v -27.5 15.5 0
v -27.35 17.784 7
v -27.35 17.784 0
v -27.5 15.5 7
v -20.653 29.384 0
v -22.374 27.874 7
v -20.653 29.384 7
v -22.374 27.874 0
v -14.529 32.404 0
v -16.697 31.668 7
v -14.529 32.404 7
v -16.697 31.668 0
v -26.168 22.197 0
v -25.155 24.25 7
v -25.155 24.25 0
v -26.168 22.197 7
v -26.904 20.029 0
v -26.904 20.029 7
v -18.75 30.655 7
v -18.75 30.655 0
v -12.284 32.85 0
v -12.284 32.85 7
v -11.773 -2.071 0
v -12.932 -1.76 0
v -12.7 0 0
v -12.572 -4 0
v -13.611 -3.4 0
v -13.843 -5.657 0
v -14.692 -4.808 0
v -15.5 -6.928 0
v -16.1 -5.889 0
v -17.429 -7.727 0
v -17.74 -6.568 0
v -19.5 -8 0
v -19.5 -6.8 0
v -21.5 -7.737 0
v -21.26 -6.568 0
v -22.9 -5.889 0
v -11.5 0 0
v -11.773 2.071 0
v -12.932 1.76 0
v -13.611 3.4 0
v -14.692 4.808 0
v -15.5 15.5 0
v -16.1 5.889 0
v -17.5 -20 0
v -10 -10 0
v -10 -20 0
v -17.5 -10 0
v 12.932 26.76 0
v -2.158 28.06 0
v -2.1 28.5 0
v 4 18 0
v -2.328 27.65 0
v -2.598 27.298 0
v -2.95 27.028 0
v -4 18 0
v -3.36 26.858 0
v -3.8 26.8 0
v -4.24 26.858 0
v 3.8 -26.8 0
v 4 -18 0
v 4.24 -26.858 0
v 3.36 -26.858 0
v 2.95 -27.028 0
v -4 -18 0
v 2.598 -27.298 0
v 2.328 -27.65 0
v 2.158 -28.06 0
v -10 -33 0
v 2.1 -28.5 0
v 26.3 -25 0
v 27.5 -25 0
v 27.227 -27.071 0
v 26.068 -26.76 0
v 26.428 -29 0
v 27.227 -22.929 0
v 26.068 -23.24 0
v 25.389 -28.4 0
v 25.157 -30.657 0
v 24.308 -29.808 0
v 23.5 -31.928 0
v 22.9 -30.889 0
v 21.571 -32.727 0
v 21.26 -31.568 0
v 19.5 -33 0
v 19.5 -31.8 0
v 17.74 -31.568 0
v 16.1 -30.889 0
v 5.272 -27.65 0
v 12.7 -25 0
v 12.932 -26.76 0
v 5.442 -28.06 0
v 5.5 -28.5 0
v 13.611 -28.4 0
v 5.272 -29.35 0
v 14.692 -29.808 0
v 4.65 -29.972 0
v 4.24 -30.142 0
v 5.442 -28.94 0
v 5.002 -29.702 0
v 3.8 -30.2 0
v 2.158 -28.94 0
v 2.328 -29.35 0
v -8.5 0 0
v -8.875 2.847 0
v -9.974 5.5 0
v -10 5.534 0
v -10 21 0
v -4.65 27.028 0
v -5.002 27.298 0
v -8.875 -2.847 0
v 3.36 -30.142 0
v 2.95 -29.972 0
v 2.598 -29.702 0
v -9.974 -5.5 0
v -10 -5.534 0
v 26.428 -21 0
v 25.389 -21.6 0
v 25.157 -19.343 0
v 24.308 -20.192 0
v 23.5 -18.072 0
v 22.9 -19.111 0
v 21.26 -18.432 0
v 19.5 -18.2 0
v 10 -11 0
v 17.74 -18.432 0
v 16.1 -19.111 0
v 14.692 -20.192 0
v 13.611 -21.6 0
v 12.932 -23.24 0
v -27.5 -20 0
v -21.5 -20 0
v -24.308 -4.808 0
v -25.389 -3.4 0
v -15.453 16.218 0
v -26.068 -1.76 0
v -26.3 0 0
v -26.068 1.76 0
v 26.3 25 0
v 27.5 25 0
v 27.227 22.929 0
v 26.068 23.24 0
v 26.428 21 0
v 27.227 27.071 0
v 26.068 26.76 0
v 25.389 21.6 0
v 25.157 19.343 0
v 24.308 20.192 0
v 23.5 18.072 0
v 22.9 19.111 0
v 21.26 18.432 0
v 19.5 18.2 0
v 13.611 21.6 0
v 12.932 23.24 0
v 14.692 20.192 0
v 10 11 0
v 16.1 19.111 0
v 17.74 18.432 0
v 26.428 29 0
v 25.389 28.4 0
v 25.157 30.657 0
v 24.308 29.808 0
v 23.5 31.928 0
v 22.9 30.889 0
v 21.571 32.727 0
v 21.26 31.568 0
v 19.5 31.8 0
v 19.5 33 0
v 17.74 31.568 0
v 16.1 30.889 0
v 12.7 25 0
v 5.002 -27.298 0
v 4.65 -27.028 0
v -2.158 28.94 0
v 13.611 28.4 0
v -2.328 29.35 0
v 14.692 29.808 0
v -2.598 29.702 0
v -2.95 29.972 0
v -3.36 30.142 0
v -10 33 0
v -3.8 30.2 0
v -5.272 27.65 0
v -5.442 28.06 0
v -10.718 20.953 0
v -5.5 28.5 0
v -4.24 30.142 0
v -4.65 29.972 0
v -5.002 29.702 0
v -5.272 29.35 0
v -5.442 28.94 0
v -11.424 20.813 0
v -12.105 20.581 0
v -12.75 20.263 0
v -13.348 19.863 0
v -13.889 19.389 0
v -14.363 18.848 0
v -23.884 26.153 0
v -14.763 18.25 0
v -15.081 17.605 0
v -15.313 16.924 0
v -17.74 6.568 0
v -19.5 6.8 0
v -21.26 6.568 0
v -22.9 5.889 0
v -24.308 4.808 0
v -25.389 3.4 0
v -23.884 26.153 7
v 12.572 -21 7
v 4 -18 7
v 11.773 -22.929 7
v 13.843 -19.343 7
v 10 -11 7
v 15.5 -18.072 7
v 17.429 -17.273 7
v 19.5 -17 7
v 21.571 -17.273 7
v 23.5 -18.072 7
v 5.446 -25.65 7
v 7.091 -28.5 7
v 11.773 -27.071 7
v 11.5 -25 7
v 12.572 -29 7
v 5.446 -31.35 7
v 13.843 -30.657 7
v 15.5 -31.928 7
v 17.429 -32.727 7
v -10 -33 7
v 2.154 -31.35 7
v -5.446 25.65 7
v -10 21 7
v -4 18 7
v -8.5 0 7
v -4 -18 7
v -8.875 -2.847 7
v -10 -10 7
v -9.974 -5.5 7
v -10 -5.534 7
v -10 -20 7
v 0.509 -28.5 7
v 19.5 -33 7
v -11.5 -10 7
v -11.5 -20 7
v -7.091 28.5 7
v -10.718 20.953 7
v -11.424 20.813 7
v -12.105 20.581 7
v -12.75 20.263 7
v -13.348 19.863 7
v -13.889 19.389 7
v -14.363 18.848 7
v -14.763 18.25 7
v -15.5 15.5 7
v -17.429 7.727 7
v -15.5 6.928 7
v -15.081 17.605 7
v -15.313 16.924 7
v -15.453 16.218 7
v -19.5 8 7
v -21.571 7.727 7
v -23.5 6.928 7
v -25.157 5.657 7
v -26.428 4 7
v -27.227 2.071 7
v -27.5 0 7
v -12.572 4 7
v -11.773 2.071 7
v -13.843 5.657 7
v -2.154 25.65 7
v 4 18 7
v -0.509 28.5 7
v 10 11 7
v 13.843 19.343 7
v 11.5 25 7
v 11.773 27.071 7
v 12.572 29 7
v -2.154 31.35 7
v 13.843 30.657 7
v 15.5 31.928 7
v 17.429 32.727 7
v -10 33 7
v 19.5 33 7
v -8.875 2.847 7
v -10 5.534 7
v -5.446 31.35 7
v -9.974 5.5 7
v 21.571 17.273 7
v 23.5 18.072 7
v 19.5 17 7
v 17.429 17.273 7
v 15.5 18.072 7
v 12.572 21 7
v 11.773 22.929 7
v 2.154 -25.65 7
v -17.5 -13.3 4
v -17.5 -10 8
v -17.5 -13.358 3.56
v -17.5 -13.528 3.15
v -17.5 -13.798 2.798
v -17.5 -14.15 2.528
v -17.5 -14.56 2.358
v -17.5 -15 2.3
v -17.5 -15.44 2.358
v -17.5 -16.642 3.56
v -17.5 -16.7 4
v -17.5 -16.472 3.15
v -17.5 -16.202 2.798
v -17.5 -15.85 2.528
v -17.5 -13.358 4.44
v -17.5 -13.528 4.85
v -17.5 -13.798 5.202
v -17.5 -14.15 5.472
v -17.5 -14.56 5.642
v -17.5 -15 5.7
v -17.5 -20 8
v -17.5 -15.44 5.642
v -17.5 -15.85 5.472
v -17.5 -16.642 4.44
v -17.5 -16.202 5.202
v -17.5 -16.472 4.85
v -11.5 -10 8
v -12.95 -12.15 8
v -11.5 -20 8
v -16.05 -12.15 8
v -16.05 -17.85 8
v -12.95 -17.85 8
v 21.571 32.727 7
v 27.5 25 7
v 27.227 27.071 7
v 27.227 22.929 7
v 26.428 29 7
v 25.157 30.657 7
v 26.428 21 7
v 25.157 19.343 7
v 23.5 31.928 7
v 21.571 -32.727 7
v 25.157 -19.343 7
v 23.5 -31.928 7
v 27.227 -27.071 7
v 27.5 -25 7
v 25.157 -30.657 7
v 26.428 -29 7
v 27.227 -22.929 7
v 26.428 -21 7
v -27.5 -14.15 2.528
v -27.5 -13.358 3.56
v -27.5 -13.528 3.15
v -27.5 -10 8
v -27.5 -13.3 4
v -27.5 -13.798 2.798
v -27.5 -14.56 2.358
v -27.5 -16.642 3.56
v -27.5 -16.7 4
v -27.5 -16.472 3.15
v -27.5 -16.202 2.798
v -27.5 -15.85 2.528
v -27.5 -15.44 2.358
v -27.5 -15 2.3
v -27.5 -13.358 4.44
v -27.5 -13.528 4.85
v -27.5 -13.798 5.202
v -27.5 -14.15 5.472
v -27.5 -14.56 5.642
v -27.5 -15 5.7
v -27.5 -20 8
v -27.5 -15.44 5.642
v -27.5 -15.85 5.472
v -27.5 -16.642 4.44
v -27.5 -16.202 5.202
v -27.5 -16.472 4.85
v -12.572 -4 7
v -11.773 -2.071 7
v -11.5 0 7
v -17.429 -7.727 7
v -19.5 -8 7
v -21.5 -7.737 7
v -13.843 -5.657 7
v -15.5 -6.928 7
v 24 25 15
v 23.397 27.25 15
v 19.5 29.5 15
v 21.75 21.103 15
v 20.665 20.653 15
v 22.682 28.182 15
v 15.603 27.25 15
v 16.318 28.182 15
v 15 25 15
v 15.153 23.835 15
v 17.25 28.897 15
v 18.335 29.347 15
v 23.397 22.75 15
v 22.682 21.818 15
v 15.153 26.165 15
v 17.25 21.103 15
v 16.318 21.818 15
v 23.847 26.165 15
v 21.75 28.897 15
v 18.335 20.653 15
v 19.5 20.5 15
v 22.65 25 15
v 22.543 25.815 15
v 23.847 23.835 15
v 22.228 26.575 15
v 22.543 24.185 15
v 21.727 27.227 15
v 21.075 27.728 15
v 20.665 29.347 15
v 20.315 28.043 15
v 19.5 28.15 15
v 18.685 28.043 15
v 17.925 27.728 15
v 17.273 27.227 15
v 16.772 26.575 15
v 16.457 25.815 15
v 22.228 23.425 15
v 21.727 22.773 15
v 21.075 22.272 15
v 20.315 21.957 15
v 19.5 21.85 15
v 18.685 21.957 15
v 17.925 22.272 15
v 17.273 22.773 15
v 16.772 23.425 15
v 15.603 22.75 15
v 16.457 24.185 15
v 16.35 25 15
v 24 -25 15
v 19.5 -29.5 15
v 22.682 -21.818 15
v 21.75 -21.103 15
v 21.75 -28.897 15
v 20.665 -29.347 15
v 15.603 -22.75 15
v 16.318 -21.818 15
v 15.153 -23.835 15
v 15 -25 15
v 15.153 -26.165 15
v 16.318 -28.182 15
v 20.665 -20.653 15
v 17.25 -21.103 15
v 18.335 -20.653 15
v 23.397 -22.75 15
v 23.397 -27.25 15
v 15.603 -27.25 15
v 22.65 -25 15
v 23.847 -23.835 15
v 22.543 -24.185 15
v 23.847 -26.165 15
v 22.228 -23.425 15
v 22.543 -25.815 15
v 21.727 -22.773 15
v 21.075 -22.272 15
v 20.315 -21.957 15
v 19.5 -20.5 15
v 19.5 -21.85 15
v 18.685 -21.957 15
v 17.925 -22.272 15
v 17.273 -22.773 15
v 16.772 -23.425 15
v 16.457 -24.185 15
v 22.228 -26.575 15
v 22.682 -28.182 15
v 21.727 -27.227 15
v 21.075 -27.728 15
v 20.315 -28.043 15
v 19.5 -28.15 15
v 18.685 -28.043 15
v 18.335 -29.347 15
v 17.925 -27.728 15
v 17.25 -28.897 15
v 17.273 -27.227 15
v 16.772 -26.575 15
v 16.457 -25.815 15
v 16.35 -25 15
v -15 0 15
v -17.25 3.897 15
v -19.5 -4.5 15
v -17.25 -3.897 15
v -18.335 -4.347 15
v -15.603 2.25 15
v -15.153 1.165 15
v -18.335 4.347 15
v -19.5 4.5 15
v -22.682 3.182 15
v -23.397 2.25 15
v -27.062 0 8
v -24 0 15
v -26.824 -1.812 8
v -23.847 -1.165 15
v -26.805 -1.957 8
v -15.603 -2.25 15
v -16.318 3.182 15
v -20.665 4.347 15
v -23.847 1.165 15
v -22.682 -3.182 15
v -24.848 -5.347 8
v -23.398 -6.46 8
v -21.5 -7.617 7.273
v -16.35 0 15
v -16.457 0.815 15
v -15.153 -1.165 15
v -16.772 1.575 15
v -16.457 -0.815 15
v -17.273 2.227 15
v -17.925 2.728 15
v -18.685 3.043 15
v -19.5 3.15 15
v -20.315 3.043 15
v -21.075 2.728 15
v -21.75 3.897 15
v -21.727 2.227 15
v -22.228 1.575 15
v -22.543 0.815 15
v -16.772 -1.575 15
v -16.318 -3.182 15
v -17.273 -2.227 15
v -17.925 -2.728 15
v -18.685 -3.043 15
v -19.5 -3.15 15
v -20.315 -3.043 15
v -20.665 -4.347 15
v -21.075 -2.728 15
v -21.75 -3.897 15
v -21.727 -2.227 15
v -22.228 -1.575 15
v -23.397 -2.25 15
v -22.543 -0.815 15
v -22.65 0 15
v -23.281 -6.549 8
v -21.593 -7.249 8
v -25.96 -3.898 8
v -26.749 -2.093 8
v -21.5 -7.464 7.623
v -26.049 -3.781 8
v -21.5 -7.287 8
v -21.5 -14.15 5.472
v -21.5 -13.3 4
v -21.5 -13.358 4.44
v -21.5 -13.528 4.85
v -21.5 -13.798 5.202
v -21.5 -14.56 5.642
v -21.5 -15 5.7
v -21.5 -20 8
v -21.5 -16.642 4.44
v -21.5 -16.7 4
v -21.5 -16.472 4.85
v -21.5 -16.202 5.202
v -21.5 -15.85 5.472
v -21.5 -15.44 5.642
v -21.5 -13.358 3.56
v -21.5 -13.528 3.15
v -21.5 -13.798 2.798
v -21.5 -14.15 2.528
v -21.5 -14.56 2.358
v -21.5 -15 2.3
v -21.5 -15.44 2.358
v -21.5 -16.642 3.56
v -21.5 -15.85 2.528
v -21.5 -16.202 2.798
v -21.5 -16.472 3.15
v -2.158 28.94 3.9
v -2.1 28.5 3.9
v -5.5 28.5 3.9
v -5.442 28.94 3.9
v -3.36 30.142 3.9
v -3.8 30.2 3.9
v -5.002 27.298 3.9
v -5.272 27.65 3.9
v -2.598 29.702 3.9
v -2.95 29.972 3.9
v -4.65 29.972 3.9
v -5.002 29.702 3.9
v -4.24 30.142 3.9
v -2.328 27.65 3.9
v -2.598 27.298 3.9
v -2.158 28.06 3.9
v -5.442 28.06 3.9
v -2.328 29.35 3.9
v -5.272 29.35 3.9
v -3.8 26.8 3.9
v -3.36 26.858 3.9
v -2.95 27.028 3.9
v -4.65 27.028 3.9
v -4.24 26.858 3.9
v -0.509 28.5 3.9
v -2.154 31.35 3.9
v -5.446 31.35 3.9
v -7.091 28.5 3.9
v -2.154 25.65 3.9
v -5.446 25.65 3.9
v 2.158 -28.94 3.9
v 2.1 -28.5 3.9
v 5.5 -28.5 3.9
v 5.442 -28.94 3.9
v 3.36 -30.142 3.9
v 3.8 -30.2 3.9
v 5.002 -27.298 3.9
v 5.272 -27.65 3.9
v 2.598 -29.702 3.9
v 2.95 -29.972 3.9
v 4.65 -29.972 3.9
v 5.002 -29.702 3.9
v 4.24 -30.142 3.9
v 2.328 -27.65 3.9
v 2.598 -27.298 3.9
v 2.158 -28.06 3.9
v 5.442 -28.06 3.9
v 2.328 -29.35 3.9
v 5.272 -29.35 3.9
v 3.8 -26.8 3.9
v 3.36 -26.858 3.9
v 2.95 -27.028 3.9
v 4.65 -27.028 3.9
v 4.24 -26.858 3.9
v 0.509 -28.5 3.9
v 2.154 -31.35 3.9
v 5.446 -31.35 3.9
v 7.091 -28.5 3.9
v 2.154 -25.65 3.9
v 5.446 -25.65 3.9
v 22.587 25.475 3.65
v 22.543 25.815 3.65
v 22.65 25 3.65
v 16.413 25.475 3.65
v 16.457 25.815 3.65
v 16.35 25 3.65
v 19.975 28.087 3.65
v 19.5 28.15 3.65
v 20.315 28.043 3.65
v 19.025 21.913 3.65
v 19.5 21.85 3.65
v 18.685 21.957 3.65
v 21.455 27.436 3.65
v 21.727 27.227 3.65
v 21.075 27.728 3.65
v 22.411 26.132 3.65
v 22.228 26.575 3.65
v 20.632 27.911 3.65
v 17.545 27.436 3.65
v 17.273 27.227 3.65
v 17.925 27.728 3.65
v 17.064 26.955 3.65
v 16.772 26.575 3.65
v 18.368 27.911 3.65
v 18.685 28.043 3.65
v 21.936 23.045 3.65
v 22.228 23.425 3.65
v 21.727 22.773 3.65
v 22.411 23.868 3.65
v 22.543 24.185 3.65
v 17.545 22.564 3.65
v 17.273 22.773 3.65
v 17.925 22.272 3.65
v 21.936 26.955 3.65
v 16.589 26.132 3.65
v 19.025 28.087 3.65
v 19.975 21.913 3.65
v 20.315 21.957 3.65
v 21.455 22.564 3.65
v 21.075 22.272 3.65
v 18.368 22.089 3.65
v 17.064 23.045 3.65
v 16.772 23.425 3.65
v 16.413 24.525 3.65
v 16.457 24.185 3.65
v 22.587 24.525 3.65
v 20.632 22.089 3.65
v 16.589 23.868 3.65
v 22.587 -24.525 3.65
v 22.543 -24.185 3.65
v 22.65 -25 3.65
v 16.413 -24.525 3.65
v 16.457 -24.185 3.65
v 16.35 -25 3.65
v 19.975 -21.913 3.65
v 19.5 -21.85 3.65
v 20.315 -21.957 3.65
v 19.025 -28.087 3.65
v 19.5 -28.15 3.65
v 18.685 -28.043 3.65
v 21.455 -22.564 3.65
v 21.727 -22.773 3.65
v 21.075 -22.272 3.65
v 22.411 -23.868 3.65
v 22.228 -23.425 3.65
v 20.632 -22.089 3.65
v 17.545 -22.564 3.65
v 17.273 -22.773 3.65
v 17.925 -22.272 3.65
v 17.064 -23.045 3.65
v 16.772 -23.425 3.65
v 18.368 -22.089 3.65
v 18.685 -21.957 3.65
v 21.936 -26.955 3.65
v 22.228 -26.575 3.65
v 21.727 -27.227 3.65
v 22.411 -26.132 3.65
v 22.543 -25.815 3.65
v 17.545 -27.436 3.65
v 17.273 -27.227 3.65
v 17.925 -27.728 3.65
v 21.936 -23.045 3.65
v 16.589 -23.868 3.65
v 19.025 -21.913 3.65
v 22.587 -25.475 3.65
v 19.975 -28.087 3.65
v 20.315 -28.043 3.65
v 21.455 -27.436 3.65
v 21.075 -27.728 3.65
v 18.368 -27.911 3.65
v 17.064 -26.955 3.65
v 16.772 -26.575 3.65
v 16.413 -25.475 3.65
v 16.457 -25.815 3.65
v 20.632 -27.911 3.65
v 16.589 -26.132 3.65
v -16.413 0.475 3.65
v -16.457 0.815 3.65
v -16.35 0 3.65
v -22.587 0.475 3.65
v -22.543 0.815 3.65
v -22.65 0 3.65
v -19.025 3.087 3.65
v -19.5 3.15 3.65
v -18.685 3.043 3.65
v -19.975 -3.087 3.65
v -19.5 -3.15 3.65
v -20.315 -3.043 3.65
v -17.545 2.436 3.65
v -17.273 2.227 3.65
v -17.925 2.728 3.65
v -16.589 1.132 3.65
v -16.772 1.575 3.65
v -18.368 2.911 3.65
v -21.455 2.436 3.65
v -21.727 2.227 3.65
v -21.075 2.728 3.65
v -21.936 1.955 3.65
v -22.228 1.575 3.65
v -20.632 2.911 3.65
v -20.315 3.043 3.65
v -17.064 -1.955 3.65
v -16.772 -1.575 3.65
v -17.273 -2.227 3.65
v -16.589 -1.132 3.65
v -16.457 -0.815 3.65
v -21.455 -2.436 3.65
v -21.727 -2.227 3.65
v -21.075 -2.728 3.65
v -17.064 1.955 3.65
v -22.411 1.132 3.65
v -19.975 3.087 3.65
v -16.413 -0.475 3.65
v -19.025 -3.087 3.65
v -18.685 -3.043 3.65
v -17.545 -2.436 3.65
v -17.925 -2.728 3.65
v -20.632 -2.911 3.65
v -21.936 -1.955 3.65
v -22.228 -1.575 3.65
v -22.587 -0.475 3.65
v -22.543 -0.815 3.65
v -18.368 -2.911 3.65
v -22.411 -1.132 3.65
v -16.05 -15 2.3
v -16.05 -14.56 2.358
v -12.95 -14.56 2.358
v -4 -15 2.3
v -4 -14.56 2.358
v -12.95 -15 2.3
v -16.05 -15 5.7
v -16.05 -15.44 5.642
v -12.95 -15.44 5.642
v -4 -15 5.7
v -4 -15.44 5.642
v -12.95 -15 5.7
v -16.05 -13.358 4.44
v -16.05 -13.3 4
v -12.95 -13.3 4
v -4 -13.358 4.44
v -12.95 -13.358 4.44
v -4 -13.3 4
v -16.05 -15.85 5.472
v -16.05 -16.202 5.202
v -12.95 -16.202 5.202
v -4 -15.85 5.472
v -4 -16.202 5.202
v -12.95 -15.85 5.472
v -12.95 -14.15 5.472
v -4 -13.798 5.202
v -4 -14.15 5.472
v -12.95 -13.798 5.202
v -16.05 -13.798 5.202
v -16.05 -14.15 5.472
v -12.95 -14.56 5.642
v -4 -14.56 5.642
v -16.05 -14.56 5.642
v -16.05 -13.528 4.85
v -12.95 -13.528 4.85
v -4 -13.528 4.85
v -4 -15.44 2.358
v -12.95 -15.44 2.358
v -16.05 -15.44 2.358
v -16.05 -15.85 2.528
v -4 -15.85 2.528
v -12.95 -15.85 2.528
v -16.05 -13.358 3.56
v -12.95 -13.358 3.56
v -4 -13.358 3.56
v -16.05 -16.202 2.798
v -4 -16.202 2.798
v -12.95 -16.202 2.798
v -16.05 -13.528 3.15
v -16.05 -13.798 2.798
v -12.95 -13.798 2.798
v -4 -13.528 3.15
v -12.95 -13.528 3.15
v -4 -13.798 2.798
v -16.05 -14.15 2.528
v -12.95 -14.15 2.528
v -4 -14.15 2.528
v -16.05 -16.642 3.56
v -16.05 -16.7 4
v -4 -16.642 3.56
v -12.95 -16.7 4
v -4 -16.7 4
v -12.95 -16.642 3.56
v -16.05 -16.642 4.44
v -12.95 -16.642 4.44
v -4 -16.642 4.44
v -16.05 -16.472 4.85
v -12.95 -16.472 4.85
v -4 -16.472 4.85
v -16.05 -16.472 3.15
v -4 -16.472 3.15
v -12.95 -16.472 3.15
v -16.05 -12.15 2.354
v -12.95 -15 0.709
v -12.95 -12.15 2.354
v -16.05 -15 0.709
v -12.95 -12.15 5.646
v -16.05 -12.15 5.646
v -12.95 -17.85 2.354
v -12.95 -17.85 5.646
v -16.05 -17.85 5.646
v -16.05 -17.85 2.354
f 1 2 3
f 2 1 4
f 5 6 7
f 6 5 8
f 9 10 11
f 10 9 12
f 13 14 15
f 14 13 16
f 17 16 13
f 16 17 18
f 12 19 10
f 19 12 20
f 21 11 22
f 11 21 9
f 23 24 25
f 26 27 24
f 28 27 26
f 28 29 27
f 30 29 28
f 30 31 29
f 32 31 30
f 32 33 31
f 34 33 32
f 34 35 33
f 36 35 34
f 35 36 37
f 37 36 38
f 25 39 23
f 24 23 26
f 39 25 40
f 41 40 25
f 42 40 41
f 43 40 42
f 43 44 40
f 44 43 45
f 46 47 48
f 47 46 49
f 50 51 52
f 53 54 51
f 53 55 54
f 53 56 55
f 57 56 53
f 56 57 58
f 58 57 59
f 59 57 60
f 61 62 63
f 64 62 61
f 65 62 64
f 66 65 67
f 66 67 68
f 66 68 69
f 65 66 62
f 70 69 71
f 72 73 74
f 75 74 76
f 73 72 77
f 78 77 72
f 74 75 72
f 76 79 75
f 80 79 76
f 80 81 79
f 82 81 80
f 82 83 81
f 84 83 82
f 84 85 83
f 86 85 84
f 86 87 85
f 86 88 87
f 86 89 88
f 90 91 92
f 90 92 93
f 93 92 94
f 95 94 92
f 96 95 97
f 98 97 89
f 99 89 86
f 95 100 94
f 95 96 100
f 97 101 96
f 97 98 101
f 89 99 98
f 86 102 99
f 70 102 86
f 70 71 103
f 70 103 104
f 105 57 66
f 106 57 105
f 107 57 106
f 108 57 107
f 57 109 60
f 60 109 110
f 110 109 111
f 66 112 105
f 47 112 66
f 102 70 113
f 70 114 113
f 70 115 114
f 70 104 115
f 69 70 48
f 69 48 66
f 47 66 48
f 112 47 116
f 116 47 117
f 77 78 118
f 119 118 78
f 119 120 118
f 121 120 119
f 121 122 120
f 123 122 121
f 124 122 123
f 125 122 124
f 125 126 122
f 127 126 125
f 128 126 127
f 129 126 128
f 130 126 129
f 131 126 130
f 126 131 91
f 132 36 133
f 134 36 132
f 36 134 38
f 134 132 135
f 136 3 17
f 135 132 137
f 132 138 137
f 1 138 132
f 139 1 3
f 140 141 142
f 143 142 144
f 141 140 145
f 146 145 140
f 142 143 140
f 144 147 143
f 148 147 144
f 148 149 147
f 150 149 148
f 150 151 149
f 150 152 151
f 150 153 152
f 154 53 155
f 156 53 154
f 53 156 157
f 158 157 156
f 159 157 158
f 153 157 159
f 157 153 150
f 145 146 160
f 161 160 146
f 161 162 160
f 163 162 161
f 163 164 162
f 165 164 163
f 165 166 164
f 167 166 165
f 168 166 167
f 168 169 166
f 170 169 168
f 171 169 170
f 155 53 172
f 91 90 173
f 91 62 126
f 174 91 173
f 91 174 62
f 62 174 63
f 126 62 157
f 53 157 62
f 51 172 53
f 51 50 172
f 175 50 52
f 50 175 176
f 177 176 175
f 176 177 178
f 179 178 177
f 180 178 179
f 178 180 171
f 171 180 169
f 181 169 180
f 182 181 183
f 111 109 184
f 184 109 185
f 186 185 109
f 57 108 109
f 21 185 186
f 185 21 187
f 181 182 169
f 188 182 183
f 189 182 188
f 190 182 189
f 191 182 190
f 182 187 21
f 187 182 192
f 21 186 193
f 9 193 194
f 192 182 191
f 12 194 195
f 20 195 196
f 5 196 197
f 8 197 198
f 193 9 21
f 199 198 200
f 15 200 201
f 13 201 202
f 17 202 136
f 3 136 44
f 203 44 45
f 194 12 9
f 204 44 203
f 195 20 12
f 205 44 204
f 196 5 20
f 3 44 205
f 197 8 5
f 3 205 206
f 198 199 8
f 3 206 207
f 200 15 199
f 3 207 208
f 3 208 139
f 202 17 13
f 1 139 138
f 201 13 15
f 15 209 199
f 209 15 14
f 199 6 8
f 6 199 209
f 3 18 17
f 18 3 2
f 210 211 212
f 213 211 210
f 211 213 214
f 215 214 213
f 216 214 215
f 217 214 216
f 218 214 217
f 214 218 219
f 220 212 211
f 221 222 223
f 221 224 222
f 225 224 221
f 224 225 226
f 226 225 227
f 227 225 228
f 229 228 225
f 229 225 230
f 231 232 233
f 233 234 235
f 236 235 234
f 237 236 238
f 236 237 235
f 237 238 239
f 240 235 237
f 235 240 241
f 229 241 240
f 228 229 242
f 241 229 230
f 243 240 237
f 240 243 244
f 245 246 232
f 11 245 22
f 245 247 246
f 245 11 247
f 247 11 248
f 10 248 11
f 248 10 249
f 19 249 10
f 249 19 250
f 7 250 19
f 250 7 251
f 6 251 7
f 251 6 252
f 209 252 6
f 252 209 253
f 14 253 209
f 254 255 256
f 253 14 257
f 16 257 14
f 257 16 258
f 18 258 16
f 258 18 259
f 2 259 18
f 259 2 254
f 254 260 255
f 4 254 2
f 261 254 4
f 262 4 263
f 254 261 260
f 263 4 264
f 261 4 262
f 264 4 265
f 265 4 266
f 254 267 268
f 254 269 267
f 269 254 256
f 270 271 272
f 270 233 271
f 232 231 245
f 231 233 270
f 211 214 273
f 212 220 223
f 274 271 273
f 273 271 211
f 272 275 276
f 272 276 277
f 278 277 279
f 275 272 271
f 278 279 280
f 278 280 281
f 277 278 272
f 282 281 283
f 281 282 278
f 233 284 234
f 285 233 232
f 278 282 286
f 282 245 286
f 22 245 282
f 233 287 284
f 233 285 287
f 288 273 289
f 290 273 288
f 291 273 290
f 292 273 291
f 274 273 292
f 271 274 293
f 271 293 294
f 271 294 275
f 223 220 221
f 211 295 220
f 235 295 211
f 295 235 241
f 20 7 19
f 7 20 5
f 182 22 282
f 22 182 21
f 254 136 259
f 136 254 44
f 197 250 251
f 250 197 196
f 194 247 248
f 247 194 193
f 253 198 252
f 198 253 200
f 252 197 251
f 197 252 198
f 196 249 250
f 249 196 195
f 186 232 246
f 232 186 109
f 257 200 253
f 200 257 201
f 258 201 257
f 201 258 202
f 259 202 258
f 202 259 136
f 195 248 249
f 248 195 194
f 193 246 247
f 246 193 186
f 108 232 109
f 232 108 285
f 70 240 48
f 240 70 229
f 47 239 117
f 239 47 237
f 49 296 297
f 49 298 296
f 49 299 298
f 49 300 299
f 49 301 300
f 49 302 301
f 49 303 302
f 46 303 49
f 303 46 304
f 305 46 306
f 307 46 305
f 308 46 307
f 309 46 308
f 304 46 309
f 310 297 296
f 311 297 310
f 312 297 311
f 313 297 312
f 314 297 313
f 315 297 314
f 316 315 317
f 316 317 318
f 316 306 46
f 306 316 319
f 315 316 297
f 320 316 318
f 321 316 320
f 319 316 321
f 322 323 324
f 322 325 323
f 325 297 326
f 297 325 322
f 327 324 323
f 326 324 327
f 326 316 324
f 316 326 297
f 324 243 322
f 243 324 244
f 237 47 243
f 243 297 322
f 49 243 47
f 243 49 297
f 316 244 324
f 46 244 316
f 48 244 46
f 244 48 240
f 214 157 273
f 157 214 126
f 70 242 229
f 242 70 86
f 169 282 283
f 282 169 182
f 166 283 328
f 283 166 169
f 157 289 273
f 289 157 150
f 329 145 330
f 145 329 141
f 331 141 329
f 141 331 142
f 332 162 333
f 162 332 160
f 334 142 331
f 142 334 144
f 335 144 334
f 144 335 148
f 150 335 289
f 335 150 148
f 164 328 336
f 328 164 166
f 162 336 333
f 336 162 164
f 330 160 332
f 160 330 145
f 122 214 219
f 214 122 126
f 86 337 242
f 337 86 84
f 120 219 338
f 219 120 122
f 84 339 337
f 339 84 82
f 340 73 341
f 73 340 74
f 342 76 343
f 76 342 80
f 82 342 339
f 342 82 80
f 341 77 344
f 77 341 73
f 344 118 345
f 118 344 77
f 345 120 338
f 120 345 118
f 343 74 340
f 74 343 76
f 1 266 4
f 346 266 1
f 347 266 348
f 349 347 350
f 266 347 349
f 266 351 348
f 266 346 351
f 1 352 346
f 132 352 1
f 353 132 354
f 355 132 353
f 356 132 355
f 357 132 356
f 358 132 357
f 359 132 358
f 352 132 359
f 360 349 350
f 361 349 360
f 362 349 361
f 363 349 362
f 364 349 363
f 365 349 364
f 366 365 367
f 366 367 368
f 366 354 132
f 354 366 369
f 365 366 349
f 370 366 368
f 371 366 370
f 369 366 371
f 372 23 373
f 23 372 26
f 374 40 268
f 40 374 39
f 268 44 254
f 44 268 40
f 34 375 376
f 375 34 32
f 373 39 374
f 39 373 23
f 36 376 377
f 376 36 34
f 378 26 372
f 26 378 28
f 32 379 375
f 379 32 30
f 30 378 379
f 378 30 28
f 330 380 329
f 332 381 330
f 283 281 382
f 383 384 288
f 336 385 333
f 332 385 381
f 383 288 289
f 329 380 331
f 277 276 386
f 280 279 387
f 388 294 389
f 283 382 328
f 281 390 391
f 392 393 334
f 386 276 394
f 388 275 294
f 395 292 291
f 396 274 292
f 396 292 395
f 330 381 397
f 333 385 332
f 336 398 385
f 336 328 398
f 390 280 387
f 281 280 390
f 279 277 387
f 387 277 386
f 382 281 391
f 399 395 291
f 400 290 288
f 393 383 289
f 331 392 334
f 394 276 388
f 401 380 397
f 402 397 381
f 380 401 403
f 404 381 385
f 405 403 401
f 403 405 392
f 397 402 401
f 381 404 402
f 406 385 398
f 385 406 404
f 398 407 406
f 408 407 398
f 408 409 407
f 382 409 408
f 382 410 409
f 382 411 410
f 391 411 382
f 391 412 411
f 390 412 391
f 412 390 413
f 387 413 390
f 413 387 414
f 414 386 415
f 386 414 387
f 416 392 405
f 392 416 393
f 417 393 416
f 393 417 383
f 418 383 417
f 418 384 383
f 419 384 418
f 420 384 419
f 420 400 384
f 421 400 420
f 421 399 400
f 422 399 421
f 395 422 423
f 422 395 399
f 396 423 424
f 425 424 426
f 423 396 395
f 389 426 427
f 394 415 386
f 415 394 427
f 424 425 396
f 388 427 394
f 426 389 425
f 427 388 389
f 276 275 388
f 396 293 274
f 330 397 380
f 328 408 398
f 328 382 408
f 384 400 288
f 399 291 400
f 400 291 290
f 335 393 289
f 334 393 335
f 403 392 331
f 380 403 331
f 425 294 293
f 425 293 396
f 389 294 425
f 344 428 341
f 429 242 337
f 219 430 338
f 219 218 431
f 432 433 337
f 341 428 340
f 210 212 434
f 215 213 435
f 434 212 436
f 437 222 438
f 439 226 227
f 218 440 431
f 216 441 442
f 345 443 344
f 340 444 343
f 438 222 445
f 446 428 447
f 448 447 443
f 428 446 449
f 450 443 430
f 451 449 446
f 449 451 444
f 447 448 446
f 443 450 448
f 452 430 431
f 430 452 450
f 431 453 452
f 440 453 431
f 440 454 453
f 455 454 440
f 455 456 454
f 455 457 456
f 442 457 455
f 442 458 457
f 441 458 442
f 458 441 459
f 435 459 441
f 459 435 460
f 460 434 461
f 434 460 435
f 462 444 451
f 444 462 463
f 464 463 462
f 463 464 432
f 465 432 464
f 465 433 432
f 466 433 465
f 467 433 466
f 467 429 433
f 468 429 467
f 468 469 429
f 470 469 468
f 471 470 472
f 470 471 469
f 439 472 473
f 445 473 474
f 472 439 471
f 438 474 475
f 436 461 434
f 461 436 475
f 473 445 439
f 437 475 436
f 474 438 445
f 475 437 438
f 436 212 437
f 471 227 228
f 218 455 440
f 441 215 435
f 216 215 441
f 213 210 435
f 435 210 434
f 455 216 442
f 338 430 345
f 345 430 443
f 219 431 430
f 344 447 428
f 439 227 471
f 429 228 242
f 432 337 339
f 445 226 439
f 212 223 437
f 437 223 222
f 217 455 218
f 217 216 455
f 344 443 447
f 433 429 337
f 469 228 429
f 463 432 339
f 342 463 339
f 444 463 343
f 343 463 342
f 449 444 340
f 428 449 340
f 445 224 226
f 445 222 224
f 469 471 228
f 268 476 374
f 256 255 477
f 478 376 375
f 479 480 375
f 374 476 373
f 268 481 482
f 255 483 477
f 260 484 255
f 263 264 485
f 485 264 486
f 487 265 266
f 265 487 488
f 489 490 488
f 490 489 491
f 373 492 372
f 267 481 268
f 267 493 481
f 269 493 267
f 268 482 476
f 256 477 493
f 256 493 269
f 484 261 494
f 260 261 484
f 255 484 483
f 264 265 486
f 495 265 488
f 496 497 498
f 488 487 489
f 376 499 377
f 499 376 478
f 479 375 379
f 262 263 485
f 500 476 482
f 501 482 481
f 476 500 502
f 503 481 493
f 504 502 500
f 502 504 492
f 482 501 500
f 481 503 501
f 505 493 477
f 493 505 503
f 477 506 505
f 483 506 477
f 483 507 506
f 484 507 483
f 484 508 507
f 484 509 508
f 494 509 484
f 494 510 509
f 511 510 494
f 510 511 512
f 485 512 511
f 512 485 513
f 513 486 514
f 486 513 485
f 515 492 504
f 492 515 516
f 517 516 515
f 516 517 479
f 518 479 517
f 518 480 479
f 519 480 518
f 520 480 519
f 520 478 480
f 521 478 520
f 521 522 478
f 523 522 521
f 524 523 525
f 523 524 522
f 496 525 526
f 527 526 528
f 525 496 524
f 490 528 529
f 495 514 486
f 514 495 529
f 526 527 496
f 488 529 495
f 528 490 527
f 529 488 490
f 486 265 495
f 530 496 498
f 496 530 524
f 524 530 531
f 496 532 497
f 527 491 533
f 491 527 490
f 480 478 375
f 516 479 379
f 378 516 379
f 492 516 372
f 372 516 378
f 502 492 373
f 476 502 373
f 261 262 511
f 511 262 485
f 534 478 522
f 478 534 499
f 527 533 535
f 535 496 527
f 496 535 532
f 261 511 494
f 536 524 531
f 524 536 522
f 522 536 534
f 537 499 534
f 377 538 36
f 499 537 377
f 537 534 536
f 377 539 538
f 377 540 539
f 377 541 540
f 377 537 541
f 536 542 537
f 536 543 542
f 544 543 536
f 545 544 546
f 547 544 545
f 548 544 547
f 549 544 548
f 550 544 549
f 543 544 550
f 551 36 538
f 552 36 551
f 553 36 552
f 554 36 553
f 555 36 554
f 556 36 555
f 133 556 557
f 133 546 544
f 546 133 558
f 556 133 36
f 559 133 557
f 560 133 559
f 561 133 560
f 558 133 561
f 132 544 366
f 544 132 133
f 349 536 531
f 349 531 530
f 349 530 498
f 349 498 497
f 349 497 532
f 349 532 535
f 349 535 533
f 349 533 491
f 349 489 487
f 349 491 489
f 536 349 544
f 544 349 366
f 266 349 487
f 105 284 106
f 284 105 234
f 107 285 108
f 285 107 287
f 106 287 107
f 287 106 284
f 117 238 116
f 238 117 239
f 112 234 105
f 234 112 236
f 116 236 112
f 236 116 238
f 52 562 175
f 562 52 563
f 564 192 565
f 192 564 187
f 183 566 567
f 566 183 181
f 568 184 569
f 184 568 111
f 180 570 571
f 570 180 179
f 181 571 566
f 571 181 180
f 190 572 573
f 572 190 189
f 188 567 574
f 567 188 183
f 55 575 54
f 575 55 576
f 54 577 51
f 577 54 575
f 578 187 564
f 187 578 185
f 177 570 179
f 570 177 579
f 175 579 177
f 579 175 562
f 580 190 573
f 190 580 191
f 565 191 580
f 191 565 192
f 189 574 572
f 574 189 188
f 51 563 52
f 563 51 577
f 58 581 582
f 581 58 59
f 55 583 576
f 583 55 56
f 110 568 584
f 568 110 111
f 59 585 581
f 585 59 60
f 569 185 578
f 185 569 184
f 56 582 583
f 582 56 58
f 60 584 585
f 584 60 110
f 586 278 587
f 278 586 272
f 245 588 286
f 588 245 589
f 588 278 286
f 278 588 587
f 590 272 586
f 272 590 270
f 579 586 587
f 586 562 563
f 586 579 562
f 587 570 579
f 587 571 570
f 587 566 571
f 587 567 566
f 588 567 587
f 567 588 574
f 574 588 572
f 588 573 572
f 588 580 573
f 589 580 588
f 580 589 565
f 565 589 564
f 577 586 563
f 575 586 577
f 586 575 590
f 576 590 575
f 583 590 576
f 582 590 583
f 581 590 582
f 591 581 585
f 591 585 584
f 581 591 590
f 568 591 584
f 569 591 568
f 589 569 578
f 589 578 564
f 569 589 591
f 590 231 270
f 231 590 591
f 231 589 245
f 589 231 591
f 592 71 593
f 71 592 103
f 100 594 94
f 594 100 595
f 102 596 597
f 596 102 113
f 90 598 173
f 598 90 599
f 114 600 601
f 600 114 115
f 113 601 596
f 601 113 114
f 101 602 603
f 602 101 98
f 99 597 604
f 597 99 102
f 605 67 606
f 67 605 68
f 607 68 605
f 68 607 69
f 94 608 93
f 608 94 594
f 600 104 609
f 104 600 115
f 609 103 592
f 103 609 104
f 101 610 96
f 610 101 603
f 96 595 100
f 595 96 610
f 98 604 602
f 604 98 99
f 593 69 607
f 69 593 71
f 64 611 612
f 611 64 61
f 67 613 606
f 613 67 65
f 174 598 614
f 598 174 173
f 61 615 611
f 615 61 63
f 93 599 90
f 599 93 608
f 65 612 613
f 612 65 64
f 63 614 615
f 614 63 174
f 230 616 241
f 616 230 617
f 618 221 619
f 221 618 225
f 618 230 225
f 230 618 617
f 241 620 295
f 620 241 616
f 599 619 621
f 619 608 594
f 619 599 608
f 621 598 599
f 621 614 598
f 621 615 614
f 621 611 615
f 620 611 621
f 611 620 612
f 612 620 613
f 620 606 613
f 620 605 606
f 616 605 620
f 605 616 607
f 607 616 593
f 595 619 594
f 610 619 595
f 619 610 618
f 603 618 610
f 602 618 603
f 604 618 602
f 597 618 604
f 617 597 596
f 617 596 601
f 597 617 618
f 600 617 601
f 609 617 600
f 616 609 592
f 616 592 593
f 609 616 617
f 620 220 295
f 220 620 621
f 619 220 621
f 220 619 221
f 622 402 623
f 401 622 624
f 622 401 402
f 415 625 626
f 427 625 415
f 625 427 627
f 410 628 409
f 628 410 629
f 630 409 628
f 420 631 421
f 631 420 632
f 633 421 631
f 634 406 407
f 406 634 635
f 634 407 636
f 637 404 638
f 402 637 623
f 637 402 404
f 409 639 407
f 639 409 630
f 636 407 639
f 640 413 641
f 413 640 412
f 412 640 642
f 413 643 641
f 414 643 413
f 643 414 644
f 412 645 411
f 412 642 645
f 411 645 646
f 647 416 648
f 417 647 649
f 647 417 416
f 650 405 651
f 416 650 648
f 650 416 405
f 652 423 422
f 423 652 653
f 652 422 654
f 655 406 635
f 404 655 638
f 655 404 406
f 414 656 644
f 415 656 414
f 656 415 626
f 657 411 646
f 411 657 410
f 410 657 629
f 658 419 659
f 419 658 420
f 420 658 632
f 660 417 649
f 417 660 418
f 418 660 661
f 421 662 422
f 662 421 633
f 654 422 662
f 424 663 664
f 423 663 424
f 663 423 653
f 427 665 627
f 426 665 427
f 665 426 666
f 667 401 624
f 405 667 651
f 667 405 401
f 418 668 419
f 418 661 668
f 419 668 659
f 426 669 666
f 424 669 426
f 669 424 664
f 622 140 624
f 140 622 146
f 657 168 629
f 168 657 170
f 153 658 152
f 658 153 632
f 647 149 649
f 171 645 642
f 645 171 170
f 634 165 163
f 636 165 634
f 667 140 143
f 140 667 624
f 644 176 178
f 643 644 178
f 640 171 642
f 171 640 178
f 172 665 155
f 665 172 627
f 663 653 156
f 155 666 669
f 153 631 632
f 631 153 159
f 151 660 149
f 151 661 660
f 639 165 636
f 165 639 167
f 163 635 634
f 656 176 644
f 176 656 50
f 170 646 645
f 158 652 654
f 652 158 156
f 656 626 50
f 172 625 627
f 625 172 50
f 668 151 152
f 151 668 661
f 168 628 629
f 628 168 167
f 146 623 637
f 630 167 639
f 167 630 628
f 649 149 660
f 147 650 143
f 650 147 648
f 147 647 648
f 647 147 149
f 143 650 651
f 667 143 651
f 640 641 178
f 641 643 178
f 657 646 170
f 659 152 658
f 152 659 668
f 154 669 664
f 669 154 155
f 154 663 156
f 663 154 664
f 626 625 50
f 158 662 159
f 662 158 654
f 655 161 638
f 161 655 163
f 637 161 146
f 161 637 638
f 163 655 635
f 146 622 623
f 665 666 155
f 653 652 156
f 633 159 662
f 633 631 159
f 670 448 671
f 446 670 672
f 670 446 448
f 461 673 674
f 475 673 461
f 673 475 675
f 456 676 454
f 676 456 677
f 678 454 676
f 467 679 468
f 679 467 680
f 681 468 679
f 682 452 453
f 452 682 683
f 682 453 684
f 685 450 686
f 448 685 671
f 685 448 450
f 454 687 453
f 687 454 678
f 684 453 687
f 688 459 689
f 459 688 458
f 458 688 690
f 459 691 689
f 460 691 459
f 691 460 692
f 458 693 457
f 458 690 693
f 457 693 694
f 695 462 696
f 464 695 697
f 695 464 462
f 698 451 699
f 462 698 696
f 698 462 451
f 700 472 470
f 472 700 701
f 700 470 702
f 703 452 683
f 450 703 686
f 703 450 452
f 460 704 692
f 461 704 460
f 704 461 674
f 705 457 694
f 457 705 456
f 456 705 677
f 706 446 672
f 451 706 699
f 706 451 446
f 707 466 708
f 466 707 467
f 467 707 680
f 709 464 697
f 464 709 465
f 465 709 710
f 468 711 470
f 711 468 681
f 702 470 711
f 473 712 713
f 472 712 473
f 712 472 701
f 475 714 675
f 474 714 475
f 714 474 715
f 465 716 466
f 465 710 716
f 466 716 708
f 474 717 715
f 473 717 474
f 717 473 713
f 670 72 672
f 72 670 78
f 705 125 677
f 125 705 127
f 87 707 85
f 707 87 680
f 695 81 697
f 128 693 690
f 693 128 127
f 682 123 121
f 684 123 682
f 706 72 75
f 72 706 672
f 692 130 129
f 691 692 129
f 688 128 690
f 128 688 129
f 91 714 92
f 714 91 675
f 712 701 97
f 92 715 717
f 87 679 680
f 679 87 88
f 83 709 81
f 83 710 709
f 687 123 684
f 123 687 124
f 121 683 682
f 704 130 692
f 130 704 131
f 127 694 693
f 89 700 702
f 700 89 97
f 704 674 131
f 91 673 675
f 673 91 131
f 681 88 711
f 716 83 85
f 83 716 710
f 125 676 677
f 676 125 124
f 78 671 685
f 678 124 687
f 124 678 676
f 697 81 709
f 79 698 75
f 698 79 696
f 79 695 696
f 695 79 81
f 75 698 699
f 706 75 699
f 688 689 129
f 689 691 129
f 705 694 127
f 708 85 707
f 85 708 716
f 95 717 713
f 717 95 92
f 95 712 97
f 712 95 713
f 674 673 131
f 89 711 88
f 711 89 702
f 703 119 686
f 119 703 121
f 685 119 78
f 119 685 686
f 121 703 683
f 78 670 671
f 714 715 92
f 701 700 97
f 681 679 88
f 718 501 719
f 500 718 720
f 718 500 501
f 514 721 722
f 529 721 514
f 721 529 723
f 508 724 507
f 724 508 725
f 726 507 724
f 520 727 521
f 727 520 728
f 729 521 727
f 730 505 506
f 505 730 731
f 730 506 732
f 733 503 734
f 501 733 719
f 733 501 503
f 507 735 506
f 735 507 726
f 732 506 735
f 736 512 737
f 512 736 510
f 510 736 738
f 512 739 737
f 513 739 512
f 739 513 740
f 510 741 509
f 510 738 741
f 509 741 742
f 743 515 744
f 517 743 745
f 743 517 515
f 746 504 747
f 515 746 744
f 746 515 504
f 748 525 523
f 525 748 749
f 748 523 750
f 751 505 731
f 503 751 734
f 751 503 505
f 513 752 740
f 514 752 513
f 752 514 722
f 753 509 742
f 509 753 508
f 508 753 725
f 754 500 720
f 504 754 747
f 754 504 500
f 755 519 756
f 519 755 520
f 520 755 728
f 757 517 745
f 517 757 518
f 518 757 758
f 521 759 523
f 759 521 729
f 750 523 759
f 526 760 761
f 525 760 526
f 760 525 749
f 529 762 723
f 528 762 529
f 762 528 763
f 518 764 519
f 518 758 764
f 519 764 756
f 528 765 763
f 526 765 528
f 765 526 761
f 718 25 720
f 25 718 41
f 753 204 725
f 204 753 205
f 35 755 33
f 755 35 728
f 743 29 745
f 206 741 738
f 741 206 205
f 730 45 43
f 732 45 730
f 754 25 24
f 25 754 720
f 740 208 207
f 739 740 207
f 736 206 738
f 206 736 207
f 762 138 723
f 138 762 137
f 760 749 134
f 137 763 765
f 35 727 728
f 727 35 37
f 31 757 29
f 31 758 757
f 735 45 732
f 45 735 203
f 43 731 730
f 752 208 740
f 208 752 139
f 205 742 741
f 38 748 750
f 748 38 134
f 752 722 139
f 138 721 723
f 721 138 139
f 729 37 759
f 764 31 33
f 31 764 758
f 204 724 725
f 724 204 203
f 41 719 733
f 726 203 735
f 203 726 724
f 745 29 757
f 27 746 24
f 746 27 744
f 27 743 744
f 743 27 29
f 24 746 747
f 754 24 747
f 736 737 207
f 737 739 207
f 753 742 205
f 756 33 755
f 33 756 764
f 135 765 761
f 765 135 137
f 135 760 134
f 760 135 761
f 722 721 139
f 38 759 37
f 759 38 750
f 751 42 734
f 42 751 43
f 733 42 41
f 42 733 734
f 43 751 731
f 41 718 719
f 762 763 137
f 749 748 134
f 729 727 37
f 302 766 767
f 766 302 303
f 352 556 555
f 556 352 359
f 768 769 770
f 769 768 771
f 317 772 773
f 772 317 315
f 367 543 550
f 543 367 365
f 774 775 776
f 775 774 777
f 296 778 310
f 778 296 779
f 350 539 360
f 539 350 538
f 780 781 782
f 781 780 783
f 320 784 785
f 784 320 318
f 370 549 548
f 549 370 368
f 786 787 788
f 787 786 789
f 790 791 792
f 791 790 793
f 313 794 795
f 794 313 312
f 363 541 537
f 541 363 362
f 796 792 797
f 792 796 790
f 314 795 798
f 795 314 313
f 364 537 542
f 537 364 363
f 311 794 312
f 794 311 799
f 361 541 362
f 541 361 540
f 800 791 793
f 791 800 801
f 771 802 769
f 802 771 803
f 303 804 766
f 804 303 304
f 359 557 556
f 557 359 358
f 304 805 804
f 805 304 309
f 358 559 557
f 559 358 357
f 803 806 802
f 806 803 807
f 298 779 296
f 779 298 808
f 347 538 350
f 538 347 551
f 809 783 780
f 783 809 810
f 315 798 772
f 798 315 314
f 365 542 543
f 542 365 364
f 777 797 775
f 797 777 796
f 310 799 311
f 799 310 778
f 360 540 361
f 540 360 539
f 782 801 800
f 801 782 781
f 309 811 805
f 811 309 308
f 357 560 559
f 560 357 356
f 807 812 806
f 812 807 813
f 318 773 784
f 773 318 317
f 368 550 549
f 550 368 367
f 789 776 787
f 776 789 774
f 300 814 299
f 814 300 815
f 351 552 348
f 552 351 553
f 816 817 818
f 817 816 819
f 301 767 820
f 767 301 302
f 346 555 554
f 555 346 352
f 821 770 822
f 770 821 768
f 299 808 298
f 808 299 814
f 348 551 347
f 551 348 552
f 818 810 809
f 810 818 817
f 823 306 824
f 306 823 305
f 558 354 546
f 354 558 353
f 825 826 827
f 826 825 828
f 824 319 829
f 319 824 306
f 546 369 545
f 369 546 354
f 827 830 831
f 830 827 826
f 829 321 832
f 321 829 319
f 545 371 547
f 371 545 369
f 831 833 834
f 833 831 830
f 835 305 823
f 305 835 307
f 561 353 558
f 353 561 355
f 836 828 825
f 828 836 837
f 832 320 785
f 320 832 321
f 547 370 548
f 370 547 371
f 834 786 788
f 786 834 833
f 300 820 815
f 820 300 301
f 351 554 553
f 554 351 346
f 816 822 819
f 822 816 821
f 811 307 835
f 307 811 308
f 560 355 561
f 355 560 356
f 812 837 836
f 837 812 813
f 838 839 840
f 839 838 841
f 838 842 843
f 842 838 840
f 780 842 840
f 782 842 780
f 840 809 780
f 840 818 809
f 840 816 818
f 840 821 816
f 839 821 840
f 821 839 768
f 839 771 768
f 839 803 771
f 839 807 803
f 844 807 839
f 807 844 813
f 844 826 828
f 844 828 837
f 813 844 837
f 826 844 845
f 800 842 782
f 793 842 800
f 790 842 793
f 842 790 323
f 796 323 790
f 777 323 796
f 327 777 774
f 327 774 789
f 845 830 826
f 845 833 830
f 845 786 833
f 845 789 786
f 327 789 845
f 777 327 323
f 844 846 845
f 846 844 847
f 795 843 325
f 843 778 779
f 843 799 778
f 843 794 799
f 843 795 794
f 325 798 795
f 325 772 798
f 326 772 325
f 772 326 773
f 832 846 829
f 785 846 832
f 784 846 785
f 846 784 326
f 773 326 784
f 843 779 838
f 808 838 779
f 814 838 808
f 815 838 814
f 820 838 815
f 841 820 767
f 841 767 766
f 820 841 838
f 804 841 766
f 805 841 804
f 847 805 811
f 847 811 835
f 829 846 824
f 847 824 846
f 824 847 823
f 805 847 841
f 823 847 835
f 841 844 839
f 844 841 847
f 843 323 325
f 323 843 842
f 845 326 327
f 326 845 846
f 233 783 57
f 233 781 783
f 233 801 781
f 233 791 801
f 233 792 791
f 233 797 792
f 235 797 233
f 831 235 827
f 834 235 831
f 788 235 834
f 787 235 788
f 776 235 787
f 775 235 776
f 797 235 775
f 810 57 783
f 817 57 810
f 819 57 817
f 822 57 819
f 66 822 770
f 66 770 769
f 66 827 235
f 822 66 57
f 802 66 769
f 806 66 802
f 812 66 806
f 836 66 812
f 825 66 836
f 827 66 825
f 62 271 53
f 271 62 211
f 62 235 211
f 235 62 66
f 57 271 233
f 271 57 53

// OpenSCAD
roller_x = 19.5;
roller_y = 25;
roller_z = 15;
base_radius = 16/2;

width = roller_x*2 + base_radius*2;
height = 66;
thickness = 7;

carriage_width = 20;
center_x = width/2;
center_y = height/2;

m3_radius = 3.4/2;
m3_nut_h = 3.1;
m3_nut_w  = 5.5+0.2;

m6_radius = 6.3/2;

shoulder_width = 12;
shoulder_radius = width/2-carriage_width/2;

module carriage_adapter()
{
	difference() {
	union() {
		translate([-carriage_width/2,-height/2,0])
			cube([carriage_width,height,thickness]);
		hull() {
			translate([-carriage_width/2,height/6,0])
				cube([carriage_width,height/3,thickness]);
			translate([roller_x,roller_y,0])
				cylinder(r=base_radius,h=thickness,$fn=24);
		}
		hull() {
			translate([-carriage_width/2,-height/2,0])
				cube([carriage_width,height/3,thickness]);
			translate([roller_x,-roller_y,0])
				cylinder(r=base_radius,h=thickness,$fn=24);
		}
		hull() {
			translate([-width/2,0,0])
				cube([shoulder_width, height/2-shoulder_radius,thickness]);
			translate([-roller_x,0,0])
				cylinder(r=base_radius,h=thickness,$fn=24);
		}

		translate([roller_x,roller_y,thickness])
			cylinder(r1=base_radius,r2=9/2,h=roller_z-thickness,$fn=24);
		translate([roller_x,-roller_y,thickness])
			cylinder(r1=base_radius,r2=9/2,h=roller_z-thickness,$fn=24);
		translate([-roller_x,0,thickness])
			cylinder(r1=base_radius,r2=9/2,h=roller_z-thickness,$fn=24);

		translate([-width/2+shoulder_radius,height/2-shoulder_radius,0])
		difference() {
			cylinder(r=shoulder_radius,h=thickness,$fn=48);
			cylinder(r=shoulder_radius-shoulder_width,h=thickness,$fn=48);
			translate([-shoulder_radius,-shoulder_radius,0])
			cube([shoulder_radius,shoulder_radius,thickness]);
		}

		translate([-width/2+6+4,-height/2+13,0]) {
			cube([6,10,thickness+1]);
			cube([carriage_width,10,thickness]);
		}

		translate([-width/2, -height/2+13, 0])
			cube([6,height/2-10,thickness]);
		hull() {
			translate([-width/2, -height/2+13,0])
				cube([6,10,thickness+1]);
			intersection() {
				translate([-roller_x,0,thickness])
					cylinder(r1=base_radius,r2=9/2,h=roller_z-thickness,$fn=24);
				translate([-width/2, -height/2+13,0])
					cube([6,height/2-13,thickness+1]);
			}
		}
	}
	// DIFFERENCE

		translate([-4, -18, 0])
			cube([8, 36, thickness]);

		intersection() {
			translate([-roller_x, 0, 0])
				cylinder(r=base_radius+3, h=thickness, $fn=24);
			translate([-carriage_width/2,-height/2,0])
				cube([carriage_width, height, thickness]);
		}

		for(a=[0,180]) rotate([0,0,a]) {
		translate([-carriage_width/4+1.2,height/2-4.5,0])
		{
			cylinder(r=m3_radius,h=20,$fn=24);
			translate([0, 0, thickness-m3_nut_h])
			cylinder(r=m3_nut_w/2*1.154734411,h=m3_nut_h+1,$fn=6);
		}
		}

		translate([roller_x,roller_y,0]) {
			cylinder(r=m6_radius,h=20,$fn=24);
			cylinder(r1=12/2+0.8, r2=2/2+0.8,h=5,$fn=24);
		}
		translate([roller_x,-roller_y,0]) {
			cylinder(r=m6_radius,h=20,$fn=24);
			cylinder(r1=12/2+0.8, r2=2/2+0.8,h=5,$fn=24);
		}
		translate([-roller_x,0,0]) {
			cylinder(r=m6_radius,h=20,$fn=24);
			cylinder(r1=12/2+0.8, r2=2/2+0.8,h=5,$fn=24);
		}

		translate([-width/2, -height/2+13, 0]) {
		translate([-1, 10/2, (thickness+1)/2])
			rotate([0,90,0])
				cylinder(r=m3_radius, h=width/2, $fn=24);

		translate([6+4+6/2, 10/2, (thickness+1)/2])
		rotate([0,90,0])
			cylinder(r=m3_nut_w/2*1.154734411, h=m3_nut_h, center=true, $fn=6);
		translate([6+4+6/2, 10/2, (thickness+2)*3/4]) 
			cube([m3_nut_h, m3_nut_w, (thickness+2)/2], center=true);
		}			
	}
}

carriage_adapter();
